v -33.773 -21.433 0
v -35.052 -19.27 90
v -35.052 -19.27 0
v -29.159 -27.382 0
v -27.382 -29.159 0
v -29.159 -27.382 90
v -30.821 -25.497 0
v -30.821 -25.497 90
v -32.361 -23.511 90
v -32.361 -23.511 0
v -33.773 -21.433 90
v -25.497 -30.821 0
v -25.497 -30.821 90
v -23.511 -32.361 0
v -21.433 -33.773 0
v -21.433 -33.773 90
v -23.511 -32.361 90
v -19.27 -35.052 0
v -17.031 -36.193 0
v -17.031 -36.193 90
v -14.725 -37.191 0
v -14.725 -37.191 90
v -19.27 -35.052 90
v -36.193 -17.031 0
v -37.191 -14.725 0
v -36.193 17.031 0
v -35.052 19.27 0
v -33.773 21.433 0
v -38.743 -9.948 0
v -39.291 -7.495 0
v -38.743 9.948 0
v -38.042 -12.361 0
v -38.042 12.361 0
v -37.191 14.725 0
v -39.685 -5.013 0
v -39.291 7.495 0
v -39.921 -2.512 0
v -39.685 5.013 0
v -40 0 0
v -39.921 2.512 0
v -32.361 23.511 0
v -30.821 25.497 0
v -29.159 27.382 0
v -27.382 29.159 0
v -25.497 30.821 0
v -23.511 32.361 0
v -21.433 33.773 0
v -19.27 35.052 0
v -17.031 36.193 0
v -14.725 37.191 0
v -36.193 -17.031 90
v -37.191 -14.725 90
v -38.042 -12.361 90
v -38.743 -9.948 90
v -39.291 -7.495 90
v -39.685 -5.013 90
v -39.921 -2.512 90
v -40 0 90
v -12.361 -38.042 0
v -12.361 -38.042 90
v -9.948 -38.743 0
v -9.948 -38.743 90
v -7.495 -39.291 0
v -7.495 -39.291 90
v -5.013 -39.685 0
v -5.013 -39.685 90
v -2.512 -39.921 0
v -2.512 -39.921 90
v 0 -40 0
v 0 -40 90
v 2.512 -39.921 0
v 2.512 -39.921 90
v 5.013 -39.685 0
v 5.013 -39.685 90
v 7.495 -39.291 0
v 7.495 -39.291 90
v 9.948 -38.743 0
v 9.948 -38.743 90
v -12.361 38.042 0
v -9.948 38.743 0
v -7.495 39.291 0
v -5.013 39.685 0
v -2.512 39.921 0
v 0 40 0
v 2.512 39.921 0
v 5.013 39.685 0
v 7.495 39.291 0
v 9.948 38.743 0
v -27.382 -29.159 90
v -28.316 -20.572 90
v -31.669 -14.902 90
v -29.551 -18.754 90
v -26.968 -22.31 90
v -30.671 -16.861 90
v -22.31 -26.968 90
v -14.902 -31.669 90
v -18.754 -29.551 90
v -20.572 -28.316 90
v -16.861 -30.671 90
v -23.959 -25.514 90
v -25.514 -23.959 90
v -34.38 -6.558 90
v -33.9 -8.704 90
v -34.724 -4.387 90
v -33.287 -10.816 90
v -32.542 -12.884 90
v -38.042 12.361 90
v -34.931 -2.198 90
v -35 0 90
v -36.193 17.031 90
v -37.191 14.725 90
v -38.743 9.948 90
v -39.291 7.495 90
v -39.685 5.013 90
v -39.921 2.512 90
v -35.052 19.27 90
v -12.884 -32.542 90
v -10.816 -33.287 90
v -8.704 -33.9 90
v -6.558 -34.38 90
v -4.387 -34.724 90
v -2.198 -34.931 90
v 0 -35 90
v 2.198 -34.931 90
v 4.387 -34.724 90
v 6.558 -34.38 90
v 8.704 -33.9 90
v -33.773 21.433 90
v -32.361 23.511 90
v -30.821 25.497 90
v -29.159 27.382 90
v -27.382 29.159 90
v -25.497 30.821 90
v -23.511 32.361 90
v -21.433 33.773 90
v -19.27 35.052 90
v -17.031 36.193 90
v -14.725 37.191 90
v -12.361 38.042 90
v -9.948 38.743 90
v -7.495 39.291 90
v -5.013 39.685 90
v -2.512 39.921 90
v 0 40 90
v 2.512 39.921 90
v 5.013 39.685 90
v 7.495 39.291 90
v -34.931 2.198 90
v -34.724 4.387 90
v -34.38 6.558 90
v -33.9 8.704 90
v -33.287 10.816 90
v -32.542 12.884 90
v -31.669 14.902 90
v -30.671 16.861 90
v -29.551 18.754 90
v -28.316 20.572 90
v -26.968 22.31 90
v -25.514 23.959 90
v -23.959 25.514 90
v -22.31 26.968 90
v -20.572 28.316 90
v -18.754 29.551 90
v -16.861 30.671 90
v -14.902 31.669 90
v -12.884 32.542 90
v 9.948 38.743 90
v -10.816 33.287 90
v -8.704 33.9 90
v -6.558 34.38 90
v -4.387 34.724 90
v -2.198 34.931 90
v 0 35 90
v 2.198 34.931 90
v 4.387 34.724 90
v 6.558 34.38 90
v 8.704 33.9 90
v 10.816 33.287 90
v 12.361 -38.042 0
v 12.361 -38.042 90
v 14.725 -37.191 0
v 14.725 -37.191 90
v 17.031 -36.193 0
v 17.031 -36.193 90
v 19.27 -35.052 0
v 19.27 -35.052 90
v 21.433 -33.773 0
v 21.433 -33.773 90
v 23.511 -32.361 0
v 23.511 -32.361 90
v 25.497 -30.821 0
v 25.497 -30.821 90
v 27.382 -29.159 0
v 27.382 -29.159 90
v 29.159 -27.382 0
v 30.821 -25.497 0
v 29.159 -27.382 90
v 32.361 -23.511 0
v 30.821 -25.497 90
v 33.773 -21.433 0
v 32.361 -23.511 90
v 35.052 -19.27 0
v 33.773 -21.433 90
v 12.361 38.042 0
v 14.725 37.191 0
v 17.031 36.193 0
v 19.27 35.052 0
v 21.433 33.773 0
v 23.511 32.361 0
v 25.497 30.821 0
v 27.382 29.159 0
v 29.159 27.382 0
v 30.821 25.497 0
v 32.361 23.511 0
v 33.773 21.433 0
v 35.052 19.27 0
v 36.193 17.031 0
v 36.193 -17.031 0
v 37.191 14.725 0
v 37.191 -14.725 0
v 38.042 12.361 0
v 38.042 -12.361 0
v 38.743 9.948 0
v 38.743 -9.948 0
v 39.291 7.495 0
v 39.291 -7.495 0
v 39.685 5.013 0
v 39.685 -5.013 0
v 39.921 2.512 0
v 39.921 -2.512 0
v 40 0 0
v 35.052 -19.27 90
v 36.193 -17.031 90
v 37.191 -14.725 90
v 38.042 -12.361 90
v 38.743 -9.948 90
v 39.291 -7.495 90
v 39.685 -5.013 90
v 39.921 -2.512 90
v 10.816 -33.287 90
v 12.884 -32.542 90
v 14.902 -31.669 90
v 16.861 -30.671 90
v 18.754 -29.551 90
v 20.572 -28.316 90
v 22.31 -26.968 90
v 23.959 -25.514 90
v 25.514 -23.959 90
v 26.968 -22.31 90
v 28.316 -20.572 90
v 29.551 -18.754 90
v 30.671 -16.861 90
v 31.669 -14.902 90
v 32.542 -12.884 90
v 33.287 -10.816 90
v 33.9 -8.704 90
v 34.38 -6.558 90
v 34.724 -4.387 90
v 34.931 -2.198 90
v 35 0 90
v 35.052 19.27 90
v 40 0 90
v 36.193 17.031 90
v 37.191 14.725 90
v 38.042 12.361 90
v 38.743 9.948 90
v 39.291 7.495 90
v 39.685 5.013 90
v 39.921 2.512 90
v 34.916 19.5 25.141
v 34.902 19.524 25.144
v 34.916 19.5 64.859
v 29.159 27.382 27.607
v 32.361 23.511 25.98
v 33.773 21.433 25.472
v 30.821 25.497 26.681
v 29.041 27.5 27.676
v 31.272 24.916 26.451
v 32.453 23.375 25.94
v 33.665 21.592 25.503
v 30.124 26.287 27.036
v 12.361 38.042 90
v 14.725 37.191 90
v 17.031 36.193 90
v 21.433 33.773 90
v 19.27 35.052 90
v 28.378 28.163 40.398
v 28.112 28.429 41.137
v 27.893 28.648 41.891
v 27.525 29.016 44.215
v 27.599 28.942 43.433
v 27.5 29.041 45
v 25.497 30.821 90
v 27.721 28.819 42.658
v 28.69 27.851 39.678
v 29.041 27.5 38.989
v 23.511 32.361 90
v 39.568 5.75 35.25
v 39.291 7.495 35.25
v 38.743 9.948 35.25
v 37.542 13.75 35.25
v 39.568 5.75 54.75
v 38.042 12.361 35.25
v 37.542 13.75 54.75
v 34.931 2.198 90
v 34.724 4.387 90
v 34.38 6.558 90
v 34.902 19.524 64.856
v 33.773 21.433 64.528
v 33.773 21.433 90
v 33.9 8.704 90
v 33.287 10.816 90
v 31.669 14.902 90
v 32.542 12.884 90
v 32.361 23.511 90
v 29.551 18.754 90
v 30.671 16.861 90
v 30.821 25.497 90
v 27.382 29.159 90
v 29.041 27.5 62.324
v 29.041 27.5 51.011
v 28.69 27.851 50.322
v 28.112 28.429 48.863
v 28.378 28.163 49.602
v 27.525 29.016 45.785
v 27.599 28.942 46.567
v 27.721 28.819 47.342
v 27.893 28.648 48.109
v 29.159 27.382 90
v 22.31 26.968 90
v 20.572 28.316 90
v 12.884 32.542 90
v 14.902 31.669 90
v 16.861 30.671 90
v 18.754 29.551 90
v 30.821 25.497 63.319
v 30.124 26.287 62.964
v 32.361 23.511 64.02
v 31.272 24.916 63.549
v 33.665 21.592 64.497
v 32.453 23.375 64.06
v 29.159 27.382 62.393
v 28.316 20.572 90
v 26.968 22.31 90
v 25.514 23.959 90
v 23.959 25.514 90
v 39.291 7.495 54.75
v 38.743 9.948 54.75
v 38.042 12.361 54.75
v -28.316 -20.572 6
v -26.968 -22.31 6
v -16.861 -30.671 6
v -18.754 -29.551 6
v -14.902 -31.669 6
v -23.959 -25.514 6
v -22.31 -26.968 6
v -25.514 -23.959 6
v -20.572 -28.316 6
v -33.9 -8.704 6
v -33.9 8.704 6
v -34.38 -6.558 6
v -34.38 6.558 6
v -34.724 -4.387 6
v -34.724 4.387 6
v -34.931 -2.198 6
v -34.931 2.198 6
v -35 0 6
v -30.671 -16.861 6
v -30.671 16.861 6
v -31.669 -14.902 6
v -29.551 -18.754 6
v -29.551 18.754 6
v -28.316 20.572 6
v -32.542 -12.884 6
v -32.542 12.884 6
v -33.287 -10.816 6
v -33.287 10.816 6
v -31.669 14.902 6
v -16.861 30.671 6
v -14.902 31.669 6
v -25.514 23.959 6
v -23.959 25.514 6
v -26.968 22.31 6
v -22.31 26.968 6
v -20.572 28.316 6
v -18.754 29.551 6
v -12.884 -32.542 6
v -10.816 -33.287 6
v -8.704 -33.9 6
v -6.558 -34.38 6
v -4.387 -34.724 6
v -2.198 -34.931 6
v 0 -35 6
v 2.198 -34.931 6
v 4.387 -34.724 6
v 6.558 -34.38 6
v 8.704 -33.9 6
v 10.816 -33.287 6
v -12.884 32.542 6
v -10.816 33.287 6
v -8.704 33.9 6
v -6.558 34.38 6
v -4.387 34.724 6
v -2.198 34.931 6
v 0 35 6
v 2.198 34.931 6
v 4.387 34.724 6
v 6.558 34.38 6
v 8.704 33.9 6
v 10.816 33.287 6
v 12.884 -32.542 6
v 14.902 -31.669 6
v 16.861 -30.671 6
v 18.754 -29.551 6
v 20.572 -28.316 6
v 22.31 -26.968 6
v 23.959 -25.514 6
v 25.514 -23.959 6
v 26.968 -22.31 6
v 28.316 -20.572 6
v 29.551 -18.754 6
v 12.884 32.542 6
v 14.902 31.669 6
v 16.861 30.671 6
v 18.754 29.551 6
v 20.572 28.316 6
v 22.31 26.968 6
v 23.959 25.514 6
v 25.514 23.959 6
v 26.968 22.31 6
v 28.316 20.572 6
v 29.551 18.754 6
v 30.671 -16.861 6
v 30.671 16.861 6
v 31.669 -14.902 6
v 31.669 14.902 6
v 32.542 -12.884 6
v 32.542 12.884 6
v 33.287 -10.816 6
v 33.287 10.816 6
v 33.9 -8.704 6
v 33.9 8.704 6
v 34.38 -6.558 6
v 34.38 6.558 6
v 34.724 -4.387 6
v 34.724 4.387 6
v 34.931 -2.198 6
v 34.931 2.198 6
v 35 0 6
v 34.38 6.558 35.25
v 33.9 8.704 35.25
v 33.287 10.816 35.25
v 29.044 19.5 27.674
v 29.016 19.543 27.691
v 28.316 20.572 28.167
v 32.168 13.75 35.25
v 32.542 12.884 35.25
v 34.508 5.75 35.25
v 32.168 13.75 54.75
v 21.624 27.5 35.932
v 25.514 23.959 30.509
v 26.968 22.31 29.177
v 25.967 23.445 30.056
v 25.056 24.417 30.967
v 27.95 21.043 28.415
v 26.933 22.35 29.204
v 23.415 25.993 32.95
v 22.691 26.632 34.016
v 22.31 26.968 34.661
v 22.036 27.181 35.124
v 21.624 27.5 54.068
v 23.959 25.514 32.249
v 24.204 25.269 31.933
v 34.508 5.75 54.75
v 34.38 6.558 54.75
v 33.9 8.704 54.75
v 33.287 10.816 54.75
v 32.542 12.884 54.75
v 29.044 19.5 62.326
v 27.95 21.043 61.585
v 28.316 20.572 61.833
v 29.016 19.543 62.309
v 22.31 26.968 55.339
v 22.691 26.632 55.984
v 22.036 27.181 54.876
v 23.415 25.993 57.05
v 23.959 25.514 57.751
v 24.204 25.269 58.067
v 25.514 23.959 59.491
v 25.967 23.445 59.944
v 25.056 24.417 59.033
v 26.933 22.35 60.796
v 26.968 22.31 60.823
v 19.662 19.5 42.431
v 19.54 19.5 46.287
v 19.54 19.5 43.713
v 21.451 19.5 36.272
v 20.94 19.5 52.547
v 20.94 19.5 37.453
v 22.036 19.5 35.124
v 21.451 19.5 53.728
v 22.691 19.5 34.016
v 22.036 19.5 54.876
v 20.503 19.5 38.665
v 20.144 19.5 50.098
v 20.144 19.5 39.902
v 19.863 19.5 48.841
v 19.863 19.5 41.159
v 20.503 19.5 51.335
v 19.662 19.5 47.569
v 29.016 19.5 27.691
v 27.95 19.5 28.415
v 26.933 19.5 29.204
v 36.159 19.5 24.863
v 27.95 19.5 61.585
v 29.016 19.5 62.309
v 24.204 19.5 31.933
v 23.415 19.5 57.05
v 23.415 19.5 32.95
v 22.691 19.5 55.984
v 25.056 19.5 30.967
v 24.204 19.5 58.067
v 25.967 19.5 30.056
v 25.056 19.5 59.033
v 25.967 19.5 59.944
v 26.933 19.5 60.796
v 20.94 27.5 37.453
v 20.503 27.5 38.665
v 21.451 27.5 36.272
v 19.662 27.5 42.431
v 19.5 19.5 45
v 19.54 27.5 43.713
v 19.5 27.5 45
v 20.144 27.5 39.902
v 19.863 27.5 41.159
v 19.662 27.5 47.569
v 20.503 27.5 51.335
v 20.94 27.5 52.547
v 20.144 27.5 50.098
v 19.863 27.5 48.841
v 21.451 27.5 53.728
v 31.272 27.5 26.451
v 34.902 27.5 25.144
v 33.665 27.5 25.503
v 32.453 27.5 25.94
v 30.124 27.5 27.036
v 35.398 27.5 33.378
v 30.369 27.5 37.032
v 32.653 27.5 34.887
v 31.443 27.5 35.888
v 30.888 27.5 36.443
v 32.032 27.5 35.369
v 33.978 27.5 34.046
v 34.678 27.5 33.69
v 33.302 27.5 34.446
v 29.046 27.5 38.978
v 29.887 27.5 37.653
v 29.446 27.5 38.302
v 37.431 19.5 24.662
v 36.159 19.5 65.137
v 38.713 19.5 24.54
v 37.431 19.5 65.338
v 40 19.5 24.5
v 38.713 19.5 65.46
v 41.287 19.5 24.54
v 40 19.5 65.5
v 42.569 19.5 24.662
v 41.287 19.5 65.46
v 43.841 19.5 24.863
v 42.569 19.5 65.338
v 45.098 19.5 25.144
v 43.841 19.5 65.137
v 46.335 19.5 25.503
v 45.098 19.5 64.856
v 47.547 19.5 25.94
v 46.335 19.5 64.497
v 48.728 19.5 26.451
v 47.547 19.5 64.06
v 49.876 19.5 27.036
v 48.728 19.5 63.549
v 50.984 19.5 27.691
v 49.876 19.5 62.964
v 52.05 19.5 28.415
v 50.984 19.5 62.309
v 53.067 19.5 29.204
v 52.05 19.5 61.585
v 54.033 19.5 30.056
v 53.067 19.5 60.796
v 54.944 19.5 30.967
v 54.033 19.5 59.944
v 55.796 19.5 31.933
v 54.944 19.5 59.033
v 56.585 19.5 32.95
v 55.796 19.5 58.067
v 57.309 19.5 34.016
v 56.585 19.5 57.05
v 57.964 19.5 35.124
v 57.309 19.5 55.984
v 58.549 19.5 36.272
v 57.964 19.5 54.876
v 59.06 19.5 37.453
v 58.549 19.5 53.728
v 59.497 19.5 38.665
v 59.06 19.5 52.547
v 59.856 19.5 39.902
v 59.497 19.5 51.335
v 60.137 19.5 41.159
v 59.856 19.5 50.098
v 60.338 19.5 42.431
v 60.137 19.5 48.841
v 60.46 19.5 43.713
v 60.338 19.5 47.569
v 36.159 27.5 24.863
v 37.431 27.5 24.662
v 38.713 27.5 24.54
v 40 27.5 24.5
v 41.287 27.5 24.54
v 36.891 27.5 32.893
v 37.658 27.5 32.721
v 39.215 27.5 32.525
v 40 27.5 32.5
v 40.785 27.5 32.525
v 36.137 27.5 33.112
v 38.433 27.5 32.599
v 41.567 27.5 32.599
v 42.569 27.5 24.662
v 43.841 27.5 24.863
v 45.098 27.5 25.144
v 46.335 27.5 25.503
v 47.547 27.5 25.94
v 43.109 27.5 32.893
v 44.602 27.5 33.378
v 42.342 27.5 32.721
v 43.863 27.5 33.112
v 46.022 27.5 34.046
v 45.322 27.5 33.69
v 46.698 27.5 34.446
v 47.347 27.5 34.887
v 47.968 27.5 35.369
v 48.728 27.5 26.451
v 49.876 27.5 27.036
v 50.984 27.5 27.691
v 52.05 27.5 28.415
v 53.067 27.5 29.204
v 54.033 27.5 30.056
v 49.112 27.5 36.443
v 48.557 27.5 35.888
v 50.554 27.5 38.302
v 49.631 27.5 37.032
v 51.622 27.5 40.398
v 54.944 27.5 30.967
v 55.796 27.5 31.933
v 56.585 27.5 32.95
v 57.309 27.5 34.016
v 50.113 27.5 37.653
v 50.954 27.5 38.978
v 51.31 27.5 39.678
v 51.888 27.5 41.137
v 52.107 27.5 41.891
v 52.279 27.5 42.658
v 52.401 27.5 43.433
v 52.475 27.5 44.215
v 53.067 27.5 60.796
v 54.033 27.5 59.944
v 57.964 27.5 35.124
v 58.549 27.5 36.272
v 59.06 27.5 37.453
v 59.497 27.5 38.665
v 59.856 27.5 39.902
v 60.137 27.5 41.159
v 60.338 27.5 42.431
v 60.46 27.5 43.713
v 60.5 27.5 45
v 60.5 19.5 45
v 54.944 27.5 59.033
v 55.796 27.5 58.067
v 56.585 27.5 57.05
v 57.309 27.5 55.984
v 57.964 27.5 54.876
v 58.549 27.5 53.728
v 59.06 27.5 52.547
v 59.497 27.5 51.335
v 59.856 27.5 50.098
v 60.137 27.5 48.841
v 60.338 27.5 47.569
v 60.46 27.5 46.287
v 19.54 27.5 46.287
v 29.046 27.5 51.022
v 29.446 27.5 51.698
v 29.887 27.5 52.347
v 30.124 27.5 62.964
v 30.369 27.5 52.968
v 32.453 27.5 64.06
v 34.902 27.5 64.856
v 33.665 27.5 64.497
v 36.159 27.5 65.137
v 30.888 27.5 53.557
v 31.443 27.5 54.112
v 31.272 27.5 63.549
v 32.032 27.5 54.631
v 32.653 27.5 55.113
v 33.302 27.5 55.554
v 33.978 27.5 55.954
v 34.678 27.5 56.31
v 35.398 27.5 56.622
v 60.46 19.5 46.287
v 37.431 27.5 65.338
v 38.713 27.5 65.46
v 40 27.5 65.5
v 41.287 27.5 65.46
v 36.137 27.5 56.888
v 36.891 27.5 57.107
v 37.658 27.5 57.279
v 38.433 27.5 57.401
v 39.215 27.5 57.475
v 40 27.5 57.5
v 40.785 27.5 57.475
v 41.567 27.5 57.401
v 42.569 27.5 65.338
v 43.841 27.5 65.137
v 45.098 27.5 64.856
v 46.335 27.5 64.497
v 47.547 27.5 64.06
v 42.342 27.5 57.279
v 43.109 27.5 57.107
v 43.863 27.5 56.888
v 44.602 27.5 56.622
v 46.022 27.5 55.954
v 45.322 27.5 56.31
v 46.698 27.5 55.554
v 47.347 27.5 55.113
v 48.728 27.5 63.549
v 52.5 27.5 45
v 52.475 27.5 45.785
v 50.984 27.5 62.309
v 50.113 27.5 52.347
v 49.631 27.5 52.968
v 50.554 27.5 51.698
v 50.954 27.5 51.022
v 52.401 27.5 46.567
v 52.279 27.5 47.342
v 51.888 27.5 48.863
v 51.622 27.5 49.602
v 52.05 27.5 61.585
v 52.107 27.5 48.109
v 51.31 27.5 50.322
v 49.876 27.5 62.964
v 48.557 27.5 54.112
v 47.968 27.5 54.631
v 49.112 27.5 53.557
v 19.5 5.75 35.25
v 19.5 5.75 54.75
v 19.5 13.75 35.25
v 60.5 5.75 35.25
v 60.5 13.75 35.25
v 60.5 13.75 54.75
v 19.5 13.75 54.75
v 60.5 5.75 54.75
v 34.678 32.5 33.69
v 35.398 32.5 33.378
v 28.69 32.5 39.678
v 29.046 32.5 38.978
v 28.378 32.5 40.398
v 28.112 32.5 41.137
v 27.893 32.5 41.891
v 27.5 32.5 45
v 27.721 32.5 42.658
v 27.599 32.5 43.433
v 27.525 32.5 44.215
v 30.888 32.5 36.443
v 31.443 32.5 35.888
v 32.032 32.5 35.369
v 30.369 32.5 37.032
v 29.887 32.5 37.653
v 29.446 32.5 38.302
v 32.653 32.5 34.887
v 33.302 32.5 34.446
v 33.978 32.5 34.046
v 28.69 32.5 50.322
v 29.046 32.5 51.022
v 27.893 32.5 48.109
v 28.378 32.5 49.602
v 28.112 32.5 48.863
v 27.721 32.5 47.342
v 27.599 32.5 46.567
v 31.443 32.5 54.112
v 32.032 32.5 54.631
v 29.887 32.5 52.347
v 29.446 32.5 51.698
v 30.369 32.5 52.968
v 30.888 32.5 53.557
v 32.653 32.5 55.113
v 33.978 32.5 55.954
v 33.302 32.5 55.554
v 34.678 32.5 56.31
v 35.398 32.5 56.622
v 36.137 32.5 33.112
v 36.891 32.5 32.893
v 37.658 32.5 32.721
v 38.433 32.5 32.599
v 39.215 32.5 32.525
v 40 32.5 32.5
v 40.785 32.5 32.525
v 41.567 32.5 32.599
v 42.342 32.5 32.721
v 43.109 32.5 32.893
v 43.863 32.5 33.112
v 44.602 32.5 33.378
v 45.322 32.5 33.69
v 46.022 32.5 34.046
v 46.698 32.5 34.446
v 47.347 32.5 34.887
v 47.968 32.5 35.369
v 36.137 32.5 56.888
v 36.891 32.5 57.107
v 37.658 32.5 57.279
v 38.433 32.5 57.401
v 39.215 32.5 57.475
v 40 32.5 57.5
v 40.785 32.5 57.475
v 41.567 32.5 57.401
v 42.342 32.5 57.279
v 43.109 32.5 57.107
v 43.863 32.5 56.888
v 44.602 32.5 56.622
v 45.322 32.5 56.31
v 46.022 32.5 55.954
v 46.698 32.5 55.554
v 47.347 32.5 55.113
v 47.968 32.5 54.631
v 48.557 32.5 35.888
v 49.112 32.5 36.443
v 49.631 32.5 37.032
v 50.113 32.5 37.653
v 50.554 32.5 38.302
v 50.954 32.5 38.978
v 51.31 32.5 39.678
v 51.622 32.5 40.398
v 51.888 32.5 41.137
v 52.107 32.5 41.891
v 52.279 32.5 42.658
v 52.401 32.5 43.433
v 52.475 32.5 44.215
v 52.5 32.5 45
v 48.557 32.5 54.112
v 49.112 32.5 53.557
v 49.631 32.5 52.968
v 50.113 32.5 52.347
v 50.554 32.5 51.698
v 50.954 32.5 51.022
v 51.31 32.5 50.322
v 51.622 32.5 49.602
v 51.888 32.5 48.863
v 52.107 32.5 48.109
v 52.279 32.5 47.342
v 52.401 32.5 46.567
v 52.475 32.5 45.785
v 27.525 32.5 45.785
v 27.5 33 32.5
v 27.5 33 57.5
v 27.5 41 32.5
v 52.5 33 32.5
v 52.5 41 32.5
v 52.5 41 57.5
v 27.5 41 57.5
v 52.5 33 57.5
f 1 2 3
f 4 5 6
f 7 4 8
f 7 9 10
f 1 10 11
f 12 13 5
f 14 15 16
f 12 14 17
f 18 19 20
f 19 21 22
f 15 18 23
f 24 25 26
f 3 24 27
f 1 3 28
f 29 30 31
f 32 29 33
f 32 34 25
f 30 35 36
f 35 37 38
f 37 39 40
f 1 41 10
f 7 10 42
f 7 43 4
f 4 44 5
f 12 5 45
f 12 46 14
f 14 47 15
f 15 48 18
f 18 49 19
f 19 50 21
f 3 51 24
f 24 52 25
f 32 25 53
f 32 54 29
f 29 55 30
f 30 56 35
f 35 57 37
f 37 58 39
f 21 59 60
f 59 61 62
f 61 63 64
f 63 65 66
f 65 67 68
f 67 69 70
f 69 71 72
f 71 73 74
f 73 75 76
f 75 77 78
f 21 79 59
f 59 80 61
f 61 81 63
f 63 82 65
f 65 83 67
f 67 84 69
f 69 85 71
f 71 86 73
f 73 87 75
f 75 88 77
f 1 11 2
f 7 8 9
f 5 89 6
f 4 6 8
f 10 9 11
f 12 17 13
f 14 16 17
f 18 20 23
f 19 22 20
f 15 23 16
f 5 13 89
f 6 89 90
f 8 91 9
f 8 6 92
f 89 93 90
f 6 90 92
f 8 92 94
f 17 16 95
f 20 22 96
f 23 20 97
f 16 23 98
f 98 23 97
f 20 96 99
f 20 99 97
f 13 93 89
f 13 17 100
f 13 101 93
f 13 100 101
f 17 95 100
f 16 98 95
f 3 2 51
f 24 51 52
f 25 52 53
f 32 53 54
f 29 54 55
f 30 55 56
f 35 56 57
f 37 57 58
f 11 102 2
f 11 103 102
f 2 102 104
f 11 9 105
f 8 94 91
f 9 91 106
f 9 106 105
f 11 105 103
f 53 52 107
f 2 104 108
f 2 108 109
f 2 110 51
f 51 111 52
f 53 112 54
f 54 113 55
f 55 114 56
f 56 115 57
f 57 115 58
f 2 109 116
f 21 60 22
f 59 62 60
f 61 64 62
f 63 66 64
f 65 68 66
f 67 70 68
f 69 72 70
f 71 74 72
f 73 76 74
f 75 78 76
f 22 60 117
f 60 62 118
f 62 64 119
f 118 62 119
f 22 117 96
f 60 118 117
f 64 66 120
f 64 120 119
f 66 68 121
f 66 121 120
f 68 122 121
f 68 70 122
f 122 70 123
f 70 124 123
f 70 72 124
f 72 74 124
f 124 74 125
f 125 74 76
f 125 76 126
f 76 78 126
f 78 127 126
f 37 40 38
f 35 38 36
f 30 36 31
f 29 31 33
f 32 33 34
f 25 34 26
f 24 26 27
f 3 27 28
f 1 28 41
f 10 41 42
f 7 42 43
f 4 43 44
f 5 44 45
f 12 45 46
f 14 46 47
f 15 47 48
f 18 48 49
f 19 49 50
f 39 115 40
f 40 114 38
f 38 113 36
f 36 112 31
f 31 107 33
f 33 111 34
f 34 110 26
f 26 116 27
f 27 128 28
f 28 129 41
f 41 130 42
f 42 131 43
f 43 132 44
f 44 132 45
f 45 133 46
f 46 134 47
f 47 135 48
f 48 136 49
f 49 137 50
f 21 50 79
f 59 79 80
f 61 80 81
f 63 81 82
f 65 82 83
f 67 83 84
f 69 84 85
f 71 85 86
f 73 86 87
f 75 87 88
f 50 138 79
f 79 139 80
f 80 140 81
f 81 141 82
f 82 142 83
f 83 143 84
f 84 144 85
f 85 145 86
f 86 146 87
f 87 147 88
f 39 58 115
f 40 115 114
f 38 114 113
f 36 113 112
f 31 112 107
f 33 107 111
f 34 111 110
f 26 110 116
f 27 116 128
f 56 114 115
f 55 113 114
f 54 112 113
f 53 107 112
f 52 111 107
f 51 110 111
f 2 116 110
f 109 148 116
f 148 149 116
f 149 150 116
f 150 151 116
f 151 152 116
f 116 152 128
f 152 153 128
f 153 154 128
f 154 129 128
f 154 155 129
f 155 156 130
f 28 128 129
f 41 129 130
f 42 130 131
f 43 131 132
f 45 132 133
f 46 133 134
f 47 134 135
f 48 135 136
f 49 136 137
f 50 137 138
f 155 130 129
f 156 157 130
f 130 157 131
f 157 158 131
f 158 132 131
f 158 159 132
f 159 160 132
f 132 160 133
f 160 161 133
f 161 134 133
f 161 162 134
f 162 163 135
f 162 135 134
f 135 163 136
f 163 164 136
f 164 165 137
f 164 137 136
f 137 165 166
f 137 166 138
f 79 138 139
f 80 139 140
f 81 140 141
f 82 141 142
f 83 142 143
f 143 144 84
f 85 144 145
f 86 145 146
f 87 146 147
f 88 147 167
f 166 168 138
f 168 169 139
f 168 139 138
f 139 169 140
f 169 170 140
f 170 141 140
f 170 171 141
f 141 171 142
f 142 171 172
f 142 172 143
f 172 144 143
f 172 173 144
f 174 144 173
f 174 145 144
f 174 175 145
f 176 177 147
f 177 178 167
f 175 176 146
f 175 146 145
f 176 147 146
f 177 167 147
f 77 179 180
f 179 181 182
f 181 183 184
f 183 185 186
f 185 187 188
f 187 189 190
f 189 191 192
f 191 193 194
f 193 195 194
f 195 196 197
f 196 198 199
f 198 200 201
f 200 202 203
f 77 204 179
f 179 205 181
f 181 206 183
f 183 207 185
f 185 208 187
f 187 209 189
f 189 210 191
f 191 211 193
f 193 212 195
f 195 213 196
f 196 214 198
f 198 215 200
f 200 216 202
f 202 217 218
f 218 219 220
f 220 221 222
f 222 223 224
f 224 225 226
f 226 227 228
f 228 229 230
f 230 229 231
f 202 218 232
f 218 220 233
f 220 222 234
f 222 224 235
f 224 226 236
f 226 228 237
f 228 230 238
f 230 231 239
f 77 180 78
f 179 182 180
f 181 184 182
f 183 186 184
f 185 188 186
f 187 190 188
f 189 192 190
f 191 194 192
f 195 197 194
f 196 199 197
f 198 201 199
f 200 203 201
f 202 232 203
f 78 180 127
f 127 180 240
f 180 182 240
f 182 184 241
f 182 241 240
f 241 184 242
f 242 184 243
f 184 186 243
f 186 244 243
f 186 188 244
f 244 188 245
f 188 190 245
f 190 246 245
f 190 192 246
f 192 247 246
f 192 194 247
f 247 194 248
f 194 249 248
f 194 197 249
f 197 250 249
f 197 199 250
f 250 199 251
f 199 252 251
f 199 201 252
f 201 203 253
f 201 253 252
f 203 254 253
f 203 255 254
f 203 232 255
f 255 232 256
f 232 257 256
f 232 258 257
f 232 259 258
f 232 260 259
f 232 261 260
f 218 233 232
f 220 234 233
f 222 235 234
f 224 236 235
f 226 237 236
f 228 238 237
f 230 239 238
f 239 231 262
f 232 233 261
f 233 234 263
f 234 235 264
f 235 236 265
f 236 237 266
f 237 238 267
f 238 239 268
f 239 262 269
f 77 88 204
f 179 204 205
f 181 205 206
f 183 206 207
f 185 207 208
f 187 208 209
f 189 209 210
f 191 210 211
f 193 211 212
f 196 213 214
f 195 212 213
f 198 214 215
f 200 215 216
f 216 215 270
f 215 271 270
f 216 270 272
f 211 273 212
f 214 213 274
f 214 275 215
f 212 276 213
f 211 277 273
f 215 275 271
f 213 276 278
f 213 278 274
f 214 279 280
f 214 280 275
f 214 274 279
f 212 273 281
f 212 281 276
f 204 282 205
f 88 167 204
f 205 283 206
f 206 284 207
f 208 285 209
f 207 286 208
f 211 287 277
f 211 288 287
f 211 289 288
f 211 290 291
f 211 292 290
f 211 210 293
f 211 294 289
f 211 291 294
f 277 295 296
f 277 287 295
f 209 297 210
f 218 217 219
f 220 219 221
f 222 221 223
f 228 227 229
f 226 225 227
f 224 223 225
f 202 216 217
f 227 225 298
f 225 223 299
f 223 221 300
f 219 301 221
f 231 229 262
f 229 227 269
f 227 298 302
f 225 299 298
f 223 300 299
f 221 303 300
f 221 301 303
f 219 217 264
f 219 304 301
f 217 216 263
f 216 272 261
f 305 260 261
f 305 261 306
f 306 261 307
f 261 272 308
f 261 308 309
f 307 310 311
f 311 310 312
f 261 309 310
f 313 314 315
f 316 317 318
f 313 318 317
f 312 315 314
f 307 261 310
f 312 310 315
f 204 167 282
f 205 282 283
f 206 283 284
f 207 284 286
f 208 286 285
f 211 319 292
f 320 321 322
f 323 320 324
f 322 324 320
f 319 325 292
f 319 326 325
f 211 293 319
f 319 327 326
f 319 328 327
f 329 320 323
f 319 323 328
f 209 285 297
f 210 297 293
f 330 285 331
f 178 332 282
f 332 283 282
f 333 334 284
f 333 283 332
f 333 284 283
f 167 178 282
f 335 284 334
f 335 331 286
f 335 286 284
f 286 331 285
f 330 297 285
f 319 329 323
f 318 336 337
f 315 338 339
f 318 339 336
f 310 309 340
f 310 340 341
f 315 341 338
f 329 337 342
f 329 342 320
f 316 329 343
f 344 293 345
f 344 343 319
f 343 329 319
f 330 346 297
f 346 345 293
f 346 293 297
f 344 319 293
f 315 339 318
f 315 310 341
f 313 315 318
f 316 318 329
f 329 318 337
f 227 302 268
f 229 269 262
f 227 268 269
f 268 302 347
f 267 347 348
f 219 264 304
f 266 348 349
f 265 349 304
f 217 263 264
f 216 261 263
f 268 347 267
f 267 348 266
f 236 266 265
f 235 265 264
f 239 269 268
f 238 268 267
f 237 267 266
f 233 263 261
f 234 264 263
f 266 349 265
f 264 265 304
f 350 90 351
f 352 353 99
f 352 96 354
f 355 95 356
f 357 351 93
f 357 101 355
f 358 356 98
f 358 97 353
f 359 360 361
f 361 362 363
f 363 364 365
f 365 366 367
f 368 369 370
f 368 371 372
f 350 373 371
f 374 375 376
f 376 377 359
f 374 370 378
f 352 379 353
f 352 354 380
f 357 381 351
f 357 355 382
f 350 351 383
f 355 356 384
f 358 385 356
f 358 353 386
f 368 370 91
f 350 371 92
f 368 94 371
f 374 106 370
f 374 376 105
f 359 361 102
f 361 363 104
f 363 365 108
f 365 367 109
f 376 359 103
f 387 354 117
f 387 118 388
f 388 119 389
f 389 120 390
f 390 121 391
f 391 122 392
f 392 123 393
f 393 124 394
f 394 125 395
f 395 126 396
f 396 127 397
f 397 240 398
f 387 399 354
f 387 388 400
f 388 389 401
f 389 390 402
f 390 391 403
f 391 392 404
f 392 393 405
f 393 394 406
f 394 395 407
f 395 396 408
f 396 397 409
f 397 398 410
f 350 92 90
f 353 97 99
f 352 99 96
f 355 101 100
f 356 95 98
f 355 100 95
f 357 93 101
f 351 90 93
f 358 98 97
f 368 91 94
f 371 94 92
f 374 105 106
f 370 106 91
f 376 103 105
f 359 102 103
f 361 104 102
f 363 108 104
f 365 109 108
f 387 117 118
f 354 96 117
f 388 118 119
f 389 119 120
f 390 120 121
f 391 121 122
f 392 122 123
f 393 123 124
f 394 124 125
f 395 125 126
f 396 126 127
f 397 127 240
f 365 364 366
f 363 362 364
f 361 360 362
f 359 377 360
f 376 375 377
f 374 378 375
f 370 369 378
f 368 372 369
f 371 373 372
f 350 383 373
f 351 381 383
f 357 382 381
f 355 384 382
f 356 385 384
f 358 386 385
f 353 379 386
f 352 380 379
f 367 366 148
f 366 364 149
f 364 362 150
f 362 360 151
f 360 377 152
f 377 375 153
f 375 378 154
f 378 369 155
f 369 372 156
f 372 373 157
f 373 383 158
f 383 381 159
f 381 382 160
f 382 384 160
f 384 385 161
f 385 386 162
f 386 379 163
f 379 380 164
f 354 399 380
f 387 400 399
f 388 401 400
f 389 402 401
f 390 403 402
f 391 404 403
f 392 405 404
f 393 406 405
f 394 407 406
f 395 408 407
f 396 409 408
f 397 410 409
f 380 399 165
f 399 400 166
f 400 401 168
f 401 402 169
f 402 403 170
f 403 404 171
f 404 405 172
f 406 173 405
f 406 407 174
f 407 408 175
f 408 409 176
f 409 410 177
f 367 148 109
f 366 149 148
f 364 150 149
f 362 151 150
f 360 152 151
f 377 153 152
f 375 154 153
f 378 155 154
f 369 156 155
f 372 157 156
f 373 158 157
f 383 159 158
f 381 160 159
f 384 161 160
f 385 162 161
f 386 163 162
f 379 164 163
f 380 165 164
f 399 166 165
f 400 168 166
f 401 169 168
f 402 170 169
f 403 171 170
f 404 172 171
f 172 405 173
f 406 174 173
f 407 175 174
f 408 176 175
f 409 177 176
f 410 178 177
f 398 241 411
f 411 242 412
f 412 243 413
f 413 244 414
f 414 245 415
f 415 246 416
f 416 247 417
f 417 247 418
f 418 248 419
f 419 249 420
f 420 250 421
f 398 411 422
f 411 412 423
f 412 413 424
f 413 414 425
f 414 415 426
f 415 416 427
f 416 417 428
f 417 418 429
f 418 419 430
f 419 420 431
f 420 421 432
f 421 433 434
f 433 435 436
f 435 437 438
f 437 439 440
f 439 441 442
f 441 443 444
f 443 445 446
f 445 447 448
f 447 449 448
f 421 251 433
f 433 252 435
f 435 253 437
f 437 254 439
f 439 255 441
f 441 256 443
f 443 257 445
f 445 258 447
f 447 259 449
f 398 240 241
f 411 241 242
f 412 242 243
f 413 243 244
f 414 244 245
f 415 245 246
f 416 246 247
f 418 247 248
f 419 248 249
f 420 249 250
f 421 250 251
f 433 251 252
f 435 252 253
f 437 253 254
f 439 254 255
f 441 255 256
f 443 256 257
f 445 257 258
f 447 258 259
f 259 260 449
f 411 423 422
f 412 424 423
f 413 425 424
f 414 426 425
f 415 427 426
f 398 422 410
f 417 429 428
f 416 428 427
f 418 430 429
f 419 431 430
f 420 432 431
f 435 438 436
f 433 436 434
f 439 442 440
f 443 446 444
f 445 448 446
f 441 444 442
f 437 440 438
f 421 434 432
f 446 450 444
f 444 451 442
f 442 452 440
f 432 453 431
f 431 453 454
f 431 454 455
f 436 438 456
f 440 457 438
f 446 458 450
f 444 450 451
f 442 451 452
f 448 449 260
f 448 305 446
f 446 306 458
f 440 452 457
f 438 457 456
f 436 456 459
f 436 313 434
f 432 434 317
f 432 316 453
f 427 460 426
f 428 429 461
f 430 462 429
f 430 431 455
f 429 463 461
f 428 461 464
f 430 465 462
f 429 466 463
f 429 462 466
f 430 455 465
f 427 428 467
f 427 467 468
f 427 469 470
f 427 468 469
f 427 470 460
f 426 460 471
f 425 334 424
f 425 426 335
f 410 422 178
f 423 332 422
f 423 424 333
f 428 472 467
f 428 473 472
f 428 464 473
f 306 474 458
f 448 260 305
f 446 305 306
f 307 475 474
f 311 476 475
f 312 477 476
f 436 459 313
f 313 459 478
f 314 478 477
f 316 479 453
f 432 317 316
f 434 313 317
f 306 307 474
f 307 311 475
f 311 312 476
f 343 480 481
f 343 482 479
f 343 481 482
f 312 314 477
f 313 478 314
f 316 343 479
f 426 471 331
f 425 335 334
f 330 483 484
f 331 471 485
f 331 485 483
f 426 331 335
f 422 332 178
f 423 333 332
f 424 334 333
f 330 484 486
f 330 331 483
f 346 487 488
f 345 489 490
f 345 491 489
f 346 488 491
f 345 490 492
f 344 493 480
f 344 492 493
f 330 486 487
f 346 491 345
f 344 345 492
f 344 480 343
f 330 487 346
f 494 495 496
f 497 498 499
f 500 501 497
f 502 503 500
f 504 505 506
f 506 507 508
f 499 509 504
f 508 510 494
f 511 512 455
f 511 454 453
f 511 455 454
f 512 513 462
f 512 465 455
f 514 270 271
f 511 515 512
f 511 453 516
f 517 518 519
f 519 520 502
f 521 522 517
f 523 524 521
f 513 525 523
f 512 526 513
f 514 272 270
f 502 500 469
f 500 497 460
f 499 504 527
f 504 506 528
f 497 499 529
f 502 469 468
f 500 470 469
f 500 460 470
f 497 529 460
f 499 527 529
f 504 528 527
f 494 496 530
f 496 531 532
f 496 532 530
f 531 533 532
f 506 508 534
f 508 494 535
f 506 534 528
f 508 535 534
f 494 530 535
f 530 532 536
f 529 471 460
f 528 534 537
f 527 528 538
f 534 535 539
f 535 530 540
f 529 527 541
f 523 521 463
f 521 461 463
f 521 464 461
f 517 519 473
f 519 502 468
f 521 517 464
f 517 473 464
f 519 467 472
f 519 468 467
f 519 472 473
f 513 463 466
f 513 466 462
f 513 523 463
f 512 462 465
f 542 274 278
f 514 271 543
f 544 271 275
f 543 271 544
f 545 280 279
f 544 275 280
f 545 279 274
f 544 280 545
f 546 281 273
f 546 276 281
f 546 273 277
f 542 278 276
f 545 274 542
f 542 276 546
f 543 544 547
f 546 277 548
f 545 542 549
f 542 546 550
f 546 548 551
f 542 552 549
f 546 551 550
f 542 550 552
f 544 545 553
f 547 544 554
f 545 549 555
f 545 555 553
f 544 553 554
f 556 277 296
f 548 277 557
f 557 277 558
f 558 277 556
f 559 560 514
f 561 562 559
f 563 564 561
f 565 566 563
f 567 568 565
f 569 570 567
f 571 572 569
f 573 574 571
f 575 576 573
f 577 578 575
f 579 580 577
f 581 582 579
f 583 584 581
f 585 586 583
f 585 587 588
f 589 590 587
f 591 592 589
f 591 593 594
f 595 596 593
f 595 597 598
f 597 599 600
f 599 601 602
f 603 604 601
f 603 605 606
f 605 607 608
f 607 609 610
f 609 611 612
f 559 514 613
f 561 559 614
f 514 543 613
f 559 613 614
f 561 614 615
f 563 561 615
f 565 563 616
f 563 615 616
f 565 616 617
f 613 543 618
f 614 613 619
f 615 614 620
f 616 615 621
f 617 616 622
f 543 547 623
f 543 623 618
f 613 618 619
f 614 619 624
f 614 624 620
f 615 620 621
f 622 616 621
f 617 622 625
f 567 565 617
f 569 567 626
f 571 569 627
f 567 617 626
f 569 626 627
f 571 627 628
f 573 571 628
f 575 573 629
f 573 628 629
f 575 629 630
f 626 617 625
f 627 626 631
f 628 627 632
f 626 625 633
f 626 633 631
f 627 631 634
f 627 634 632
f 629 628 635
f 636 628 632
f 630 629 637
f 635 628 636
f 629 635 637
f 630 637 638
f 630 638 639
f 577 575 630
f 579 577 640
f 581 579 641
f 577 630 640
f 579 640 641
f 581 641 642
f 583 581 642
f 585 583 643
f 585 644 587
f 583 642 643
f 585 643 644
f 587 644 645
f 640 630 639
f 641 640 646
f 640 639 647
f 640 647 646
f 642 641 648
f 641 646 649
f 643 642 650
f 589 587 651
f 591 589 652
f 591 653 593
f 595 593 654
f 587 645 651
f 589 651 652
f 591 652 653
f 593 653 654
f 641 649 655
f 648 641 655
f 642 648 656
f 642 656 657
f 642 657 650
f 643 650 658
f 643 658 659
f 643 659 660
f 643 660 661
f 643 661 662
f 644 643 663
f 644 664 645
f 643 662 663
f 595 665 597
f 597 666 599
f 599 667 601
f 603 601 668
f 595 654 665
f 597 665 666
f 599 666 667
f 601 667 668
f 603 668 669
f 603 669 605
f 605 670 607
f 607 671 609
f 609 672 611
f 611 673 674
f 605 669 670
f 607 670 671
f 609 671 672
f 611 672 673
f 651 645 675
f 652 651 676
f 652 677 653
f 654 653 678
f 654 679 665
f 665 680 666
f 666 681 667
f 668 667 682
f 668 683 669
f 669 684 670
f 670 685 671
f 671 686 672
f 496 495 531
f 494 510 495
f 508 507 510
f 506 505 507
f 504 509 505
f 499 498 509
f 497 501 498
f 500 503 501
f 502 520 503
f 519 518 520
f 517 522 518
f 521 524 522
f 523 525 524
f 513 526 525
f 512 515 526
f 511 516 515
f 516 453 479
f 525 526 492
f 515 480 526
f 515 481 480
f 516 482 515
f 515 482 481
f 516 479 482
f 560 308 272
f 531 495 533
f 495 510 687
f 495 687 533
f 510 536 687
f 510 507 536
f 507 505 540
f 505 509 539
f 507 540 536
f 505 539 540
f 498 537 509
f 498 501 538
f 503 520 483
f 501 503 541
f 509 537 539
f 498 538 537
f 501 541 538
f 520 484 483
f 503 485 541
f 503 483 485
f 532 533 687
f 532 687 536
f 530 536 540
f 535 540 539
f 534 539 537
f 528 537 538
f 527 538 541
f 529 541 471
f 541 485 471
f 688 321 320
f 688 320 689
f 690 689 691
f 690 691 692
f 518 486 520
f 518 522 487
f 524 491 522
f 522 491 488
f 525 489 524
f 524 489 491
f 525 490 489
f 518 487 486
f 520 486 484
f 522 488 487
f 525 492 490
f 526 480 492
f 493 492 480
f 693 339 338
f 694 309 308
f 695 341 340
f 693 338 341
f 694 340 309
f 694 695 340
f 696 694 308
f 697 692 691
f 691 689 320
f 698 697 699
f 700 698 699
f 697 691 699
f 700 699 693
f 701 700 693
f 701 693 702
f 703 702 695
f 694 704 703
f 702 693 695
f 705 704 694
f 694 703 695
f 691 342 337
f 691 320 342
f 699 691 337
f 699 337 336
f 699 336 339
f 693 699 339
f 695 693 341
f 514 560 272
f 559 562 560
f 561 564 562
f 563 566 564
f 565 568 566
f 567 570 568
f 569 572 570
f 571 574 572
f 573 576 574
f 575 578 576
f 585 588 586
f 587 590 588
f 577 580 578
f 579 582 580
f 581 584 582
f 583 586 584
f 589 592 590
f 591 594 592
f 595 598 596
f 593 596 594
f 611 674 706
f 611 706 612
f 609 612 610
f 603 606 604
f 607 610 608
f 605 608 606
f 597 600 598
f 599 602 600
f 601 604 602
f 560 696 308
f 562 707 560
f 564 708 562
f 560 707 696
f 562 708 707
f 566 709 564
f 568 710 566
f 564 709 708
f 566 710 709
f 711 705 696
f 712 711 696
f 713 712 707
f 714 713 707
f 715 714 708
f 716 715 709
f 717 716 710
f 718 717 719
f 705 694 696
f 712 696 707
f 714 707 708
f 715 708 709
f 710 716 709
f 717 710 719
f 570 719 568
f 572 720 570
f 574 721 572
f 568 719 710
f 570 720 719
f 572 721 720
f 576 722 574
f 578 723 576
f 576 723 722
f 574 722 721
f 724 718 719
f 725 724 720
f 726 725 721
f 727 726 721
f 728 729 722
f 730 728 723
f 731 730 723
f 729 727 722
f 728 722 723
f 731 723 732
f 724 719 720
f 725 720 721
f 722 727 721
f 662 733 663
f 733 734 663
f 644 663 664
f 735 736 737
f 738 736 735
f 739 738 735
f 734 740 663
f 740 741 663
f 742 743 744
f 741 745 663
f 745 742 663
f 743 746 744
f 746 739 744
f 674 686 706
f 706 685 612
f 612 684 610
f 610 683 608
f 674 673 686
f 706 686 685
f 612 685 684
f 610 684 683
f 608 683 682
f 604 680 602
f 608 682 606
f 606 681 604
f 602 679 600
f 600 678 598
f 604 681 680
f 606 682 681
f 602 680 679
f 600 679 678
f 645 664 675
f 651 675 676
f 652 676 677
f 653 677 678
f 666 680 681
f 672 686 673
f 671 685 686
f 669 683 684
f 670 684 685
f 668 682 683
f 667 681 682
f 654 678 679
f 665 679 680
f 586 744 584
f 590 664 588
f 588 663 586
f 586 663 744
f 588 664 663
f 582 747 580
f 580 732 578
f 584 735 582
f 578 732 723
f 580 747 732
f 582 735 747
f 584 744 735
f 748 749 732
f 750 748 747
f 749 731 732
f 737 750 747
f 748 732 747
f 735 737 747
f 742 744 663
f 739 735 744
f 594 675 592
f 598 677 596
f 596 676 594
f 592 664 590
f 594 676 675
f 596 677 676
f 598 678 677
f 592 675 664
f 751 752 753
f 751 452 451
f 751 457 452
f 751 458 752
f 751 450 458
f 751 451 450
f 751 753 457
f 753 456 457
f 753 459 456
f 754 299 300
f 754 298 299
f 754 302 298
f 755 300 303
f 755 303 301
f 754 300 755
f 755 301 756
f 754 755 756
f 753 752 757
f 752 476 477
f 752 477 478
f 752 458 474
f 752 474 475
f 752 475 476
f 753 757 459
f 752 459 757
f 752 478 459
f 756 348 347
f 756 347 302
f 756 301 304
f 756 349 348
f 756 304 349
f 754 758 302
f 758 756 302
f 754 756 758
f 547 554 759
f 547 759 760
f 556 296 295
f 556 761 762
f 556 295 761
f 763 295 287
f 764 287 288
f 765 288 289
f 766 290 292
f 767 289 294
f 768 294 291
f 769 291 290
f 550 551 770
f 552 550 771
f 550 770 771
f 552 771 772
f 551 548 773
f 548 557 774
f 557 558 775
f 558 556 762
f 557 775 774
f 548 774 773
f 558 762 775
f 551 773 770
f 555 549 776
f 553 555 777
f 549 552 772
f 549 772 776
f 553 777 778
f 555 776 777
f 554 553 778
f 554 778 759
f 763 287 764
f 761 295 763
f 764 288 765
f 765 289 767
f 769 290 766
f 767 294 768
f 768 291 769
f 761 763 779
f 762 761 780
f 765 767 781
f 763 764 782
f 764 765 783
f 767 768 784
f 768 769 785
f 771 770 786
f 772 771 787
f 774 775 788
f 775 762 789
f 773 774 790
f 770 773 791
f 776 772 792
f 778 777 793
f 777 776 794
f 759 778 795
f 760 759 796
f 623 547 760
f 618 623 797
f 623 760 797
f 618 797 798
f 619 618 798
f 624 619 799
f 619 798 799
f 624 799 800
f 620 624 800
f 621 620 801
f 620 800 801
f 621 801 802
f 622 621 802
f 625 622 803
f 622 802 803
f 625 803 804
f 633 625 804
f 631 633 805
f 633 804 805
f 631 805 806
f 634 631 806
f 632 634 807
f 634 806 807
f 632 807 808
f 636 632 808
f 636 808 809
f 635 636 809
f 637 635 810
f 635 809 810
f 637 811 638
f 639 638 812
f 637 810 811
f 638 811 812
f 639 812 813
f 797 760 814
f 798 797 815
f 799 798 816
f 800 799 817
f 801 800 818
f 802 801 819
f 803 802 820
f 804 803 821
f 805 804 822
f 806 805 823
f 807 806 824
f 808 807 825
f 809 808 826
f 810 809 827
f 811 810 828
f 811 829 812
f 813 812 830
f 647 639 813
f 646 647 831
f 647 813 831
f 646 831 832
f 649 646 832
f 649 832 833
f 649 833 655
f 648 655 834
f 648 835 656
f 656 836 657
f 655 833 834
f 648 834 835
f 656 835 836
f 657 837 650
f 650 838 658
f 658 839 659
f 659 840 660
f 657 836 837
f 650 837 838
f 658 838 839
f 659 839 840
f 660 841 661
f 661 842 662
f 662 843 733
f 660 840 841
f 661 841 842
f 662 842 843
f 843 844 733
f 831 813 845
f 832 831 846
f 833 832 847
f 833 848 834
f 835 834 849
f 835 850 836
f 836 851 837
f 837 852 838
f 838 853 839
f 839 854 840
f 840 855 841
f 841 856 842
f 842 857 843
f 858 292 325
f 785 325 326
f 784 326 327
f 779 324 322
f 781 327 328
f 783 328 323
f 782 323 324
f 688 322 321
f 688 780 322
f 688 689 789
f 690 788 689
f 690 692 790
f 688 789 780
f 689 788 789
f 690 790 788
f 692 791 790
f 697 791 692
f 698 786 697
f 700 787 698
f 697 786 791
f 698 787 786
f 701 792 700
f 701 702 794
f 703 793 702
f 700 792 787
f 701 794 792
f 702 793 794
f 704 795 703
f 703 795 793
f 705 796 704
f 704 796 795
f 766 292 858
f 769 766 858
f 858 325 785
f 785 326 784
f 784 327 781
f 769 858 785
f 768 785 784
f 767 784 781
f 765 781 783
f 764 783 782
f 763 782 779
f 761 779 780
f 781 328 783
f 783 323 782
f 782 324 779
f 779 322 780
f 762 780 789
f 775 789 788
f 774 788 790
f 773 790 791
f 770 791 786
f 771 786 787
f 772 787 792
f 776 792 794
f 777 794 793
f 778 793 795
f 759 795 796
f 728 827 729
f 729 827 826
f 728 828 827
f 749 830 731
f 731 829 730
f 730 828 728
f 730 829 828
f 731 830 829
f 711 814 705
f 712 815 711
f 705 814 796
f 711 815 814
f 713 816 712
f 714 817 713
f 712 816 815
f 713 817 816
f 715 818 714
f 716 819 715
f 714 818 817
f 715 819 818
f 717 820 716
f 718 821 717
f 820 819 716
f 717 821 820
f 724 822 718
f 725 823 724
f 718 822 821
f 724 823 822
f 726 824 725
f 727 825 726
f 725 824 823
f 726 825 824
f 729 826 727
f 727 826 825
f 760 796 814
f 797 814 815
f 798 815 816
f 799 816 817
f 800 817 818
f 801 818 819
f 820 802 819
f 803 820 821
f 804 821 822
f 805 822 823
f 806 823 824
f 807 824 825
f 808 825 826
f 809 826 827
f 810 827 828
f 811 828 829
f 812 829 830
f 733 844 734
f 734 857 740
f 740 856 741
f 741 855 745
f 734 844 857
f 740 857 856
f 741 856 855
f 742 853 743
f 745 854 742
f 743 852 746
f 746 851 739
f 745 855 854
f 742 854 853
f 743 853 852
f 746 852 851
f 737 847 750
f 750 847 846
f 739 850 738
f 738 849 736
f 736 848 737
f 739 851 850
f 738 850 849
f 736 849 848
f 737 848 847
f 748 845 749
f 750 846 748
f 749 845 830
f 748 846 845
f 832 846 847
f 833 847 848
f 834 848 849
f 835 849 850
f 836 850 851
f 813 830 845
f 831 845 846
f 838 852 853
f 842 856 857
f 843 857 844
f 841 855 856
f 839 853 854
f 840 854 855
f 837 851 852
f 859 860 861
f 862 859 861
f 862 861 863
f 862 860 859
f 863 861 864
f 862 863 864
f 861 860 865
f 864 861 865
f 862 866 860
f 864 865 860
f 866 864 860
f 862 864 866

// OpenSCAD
// マグカップのパラメータ
mug_outer_diameter = 80;
mug_wall_thickness = 5;
mug_height = 90;
mug_bottom_thickness = 6;

// 取手のパラメータ
handle_inner_height = 30;
handle_inner_width = 25;
handle_thickness = 8; // 本体との接続部を考慮した厚み

// マグ本体の計算
mug_outer_radius = mug_outer_diameter / 2;
mug_inner_radius = mug_outer_radius - mug_wall_thickness;
mug_body_height_for_inner_cylinder = mug_height - mug_bottom_thickness; // 内側円筒の高さ計算用

// マグ本体の作成
module mug_body() {
    difference() {
        // 外側の円筒
        cylinder(h = mug_height, r = mug_outer_radius, $fn = 100);
        // 内側の円筒 (飲み物用空間)
        translate([0, 0, mug_bottom_thickness])
            cylinder(h = mug_body_height_for_inner_cylinder, r = mug_inner_radius, $fn = 100);
    }
}

// 取手の作成
module mug_handle() {
    // 取手の中心位置をマグの高さの中央付近に設定
    handle_center_z = mug_height / 2;

    // D字形状の半円部分の外径
    handle_arc_outer_diameter = handle_inner_width + 2 * handle_thickness;
    handle_arc_outer_radius = handle_arc_outer_diameter / 2;
    
    // D字形状の直線部分の長さ (本体に接続する部分)
    handle_straight_length = mug_outer_radius - handle_arc_outer_radius;

    // 取手本体
    union() {
        // D字のカーブ部分
        translate([handle_straight_length, 0, 0]) { // 直線部分の長さに合わせてオフセット
            rotate([0, 90, 0]) { // X軸方向に向ける
                cylinder(h = handle_thickness, r = handle_arc_outer_radius, $fn = 100);
            }
        }
        // 本体に接続する直線部分
        translate([handle_straight_length / 2, 0, 0]) {
            rotate([0, 90, 0]) {
                cube([handle_straight_length, handle_arc_outer_diameter, handle_thickness], center = true);
            }
        }
    }
}

// 取手の内側くり抜き
module handle_hollow() {
    // D字形状の半円部分の内径
    handle_arc_inner_diameter = handle_inner_width;
    handle_arc_inner_radius = handle_arc_inner_diameter / 2;

    // D字形状の直線部分の内側 (指が入る空間)
    handle_inner_straight_length = handle_inner_width;
    
    union() {
        // 内側のカーブ部分
        translate([handle_thickness, 0, 0]) { // 本体との接続部の厚み分オフセット
            rotate([0, 90, 0]) {
                cylinder(h = handle_thickness, r = handle_arc_inner_radius, $fn = 100);
            }
        }
        // 内側の直線部分 (指が入る空間)
        translate([handle_thickness + handle_inner_width / 2, 0, 0]) {
            rotate([0, 90, 0]) {
                cube([handle_inner_straight_length, handle_inner_width, handle_thickness], center = true);
            }
        }
    }
}


// マグカップ全体を作成
union() {
    mug_body();
    
    // 取手を本体の +X 軸方向の側面に取り付ける
    translate([mug_outer_radius, 0, mug_height / 2]) { // マグの外周に配置し、高さを中央に
        rotate([0, 0, 90]) { // Y軸周りに90度回転させて +X 軸方向に向ける
            union() {
                mug_handle();
                // 内側のくり抜きを配置
                translate([handle_thickness/2 + handle_inner_width/2, 0, 0]) { // 取手の厚みと内側空間のオフセットを考慮
                    handle_hollow();
                }
            }
        }
    }
}
